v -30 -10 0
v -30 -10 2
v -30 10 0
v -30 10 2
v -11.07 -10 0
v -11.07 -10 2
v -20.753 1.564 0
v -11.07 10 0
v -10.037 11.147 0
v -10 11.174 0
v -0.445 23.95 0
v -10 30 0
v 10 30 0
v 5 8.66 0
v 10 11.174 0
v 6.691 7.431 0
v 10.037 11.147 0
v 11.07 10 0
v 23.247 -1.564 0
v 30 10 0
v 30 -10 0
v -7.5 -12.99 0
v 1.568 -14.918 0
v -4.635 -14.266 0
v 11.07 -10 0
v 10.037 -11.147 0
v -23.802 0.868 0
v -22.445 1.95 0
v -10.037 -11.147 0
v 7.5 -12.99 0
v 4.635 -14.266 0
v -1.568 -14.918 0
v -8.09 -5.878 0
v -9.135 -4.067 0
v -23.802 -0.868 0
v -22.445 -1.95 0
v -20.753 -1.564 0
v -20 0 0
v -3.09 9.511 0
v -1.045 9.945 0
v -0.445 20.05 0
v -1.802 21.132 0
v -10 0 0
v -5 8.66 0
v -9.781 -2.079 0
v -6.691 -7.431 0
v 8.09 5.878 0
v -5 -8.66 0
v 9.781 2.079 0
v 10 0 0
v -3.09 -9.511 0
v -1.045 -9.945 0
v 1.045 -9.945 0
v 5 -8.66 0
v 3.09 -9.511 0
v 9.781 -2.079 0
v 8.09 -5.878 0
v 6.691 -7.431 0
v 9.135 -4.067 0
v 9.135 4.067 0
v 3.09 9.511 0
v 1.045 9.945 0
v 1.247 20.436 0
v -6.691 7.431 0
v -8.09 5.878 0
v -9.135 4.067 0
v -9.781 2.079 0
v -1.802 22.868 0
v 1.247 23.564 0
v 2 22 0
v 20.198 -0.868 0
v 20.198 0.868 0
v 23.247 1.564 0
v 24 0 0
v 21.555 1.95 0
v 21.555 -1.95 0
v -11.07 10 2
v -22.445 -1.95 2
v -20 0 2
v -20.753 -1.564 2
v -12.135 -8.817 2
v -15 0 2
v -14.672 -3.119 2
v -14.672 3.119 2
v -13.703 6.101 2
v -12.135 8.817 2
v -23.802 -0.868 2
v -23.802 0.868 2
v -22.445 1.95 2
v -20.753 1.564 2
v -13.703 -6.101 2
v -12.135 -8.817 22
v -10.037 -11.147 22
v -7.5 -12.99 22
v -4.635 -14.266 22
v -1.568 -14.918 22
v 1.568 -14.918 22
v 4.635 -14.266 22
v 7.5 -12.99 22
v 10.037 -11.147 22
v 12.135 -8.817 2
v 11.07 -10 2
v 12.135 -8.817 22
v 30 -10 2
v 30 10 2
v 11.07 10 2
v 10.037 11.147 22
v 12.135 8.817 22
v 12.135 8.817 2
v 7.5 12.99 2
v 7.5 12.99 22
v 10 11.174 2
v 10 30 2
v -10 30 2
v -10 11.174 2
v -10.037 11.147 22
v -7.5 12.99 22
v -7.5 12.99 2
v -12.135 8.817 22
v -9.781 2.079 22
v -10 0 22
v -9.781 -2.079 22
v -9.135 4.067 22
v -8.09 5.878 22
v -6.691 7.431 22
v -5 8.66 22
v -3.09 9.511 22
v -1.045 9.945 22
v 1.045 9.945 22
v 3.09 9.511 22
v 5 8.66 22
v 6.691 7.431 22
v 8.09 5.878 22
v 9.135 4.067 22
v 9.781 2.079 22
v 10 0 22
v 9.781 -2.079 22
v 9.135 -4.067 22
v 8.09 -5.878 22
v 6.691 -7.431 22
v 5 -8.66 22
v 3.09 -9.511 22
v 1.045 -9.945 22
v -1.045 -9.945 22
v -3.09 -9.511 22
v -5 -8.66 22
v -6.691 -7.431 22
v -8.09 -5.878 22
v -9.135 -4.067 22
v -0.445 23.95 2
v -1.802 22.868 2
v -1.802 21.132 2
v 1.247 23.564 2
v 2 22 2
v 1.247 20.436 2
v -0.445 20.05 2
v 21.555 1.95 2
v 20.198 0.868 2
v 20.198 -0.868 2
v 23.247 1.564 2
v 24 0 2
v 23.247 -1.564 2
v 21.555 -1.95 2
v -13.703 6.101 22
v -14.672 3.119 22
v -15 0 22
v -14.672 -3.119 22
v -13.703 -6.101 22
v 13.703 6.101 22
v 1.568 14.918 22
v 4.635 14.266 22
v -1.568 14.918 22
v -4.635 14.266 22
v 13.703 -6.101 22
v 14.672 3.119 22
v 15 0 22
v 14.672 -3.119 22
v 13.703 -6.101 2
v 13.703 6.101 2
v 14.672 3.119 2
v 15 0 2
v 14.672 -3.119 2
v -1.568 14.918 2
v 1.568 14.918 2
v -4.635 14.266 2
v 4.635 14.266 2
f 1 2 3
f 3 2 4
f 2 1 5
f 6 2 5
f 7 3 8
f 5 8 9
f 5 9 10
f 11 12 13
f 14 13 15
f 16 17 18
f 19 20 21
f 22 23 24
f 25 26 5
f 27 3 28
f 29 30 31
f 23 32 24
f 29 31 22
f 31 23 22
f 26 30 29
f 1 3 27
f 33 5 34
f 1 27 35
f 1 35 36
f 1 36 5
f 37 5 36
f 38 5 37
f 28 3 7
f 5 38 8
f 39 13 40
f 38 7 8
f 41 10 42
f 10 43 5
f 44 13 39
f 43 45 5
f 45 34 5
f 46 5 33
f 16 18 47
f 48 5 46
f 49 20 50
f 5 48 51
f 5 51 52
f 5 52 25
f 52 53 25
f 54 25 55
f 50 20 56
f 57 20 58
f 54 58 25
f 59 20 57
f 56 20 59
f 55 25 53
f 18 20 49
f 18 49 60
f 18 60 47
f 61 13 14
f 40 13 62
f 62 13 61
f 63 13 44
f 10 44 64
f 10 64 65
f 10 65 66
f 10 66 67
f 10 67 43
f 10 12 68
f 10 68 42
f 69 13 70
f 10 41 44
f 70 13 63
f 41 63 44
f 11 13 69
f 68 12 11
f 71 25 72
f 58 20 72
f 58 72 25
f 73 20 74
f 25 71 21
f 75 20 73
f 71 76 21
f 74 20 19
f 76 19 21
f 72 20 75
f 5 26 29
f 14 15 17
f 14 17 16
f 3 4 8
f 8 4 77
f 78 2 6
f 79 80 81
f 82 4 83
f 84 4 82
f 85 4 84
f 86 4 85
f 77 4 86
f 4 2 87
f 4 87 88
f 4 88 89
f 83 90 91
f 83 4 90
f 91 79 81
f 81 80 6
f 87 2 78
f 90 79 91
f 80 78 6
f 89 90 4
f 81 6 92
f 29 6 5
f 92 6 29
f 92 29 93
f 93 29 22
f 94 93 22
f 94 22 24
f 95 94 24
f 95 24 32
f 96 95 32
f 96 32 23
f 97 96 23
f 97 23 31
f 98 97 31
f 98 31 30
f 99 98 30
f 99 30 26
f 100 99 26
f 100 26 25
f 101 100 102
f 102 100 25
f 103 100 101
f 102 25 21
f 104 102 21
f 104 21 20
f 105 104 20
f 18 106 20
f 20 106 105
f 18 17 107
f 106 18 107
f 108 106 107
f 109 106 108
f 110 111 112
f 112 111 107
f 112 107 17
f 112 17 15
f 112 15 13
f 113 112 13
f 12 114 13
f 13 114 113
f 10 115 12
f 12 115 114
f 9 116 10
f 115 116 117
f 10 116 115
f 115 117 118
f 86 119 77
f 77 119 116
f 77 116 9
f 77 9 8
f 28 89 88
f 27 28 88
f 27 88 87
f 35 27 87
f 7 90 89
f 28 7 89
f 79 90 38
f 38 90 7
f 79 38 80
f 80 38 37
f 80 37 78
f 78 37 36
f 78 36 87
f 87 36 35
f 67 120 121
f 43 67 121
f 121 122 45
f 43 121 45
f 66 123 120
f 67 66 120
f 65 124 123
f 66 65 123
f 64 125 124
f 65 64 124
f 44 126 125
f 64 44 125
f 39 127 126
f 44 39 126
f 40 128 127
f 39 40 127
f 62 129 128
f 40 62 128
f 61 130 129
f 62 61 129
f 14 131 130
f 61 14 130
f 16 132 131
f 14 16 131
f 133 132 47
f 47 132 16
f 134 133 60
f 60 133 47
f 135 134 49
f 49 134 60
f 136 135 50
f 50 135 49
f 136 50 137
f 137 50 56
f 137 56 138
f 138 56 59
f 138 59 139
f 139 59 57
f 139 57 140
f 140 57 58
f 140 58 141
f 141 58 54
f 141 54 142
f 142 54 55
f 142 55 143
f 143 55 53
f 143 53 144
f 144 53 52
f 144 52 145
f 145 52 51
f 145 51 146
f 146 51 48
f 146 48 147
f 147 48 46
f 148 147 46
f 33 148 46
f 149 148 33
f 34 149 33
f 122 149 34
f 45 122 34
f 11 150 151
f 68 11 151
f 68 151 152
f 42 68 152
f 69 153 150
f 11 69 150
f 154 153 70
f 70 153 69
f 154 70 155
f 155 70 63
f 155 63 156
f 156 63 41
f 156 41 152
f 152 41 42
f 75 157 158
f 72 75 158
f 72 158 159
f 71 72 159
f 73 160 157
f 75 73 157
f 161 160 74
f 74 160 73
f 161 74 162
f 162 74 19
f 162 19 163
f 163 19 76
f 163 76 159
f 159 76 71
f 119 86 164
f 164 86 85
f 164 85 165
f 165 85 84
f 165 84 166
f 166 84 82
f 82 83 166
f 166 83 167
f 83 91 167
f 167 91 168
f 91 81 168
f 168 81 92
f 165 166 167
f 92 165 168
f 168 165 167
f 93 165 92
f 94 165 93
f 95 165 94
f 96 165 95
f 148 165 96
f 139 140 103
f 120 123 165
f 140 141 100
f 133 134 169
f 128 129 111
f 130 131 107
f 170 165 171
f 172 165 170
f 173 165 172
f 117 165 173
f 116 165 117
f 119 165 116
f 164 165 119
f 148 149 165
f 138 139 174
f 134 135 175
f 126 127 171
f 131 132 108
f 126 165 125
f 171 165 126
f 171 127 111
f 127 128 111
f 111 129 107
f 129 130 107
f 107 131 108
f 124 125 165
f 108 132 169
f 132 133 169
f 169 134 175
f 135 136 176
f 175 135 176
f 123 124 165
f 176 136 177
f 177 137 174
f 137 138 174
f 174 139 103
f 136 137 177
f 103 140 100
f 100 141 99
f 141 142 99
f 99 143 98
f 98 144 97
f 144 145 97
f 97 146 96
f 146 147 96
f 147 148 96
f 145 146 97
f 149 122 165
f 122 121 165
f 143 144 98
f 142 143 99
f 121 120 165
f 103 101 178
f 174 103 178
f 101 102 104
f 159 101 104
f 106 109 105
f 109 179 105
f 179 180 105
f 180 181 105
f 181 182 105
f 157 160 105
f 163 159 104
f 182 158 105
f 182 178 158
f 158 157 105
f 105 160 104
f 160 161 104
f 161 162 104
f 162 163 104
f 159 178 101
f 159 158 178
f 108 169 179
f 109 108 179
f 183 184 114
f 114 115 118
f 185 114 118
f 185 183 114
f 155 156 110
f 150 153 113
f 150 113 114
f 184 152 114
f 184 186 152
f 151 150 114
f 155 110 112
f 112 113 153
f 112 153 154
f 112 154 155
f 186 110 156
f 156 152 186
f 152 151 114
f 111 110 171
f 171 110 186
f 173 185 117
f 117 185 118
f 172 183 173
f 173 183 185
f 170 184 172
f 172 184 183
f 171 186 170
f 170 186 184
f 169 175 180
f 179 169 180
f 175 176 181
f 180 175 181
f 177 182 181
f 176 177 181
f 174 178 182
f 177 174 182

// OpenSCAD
difference() {
  difference() {
    translate(v = [0, 0, 1]) cube(size = [60, 20, 2], center = true);
    translate(v = [22, 0, 1]) cylinder(h=20, r=2, center = true);
    translate(v = [-22, 0, 1]) cylinder(h=20, r=2, center = true);
  }
  cylinder(h=20, r=15, center = true);
}

difference() {
  difference() {
    translate(v = [0, 10, 1]) cube(size = [20, 40, 2], center = true);
	translate(v = [0, 22, 1]) cylinder(h=20, r=2, center = true);
  }
  cylinder(h=20, r=15, center = true);
}

difference() {
  cylinder(h=22, r=15);
  cylinder(h=80, r=10, center = true);
}
